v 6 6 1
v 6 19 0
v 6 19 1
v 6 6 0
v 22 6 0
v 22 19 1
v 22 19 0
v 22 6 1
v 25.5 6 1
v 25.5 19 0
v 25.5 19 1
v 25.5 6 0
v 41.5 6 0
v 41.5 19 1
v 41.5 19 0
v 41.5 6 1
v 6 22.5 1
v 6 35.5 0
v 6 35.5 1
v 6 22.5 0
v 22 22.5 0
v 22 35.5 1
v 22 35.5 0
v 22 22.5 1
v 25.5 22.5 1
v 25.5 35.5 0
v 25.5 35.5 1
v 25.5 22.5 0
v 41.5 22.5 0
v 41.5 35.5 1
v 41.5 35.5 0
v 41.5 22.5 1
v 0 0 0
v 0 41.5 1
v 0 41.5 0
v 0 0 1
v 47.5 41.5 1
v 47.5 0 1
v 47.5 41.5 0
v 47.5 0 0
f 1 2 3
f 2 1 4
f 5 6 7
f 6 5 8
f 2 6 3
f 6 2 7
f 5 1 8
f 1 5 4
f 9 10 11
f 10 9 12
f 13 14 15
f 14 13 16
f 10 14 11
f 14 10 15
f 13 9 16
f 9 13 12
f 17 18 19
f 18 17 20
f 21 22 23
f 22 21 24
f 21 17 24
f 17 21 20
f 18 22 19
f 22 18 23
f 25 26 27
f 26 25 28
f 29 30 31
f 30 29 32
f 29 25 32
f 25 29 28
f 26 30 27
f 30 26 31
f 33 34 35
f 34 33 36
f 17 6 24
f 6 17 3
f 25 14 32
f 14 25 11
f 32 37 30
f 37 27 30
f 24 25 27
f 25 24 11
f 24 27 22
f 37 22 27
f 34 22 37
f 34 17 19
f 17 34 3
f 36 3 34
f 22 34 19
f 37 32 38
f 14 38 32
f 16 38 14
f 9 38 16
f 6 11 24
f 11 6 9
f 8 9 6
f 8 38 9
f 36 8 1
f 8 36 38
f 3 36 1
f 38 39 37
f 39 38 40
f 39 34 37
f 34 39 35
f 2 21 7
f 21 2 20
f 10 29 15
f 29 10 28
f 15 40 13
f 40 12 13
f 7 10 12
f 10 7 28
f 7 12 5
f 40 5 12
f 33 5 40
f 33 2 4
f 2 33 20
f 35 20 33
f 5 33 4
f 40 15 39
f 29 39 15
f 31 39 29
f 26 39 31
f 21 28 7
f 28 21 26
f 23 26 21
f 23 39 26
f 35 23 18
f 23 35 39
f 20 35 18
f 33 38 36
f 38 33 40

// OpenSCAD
/* KeySizeTest
 * Make a small 2x2 matrix to test keyholes.
 */
keyCols = 2;
keyRows = 2;
keyX = 16;
keyY = 13;
keySpace = 3.5;
edgeSpaceAddition = 4;
edgeSpace = (edgeSpaceAddition*2)-keySpace;
keyZ = -1;

moduleX = (edgeSpace+edgeSpaceAddition)+(keySpace*keyCols)+keyX*(keyCols-1)+keyX;
moduleY = (edgeSpace+edgeSpaceAddition)+(keySpace*keyRows)+keyY*(keyRows-1)+keyY;
moduleZ = 1;

keySize = [keyX, keyY, moduleZ+2];

function position(x,y,z) = [edgeSpace+keySpace*x+keyX*(x-1)-(edgeSpaceAddition/2), edgeSpace+keySpace*y+keyY*(y-1)-(edgeSpaceAddition/2), z];

module keyHoles (yStart, yEnd, xStart, xEnd){
    for(y = [yStart:yEnd]){
        for(x = [xStart:xEnd]){
			translate(position(x,y,keyZ)) cube(keySize);
        }
    }
}

difference(){
    cube([moduleX,moduleY,moduleZ]);

	keyHoles(1,2,1,2);
}
